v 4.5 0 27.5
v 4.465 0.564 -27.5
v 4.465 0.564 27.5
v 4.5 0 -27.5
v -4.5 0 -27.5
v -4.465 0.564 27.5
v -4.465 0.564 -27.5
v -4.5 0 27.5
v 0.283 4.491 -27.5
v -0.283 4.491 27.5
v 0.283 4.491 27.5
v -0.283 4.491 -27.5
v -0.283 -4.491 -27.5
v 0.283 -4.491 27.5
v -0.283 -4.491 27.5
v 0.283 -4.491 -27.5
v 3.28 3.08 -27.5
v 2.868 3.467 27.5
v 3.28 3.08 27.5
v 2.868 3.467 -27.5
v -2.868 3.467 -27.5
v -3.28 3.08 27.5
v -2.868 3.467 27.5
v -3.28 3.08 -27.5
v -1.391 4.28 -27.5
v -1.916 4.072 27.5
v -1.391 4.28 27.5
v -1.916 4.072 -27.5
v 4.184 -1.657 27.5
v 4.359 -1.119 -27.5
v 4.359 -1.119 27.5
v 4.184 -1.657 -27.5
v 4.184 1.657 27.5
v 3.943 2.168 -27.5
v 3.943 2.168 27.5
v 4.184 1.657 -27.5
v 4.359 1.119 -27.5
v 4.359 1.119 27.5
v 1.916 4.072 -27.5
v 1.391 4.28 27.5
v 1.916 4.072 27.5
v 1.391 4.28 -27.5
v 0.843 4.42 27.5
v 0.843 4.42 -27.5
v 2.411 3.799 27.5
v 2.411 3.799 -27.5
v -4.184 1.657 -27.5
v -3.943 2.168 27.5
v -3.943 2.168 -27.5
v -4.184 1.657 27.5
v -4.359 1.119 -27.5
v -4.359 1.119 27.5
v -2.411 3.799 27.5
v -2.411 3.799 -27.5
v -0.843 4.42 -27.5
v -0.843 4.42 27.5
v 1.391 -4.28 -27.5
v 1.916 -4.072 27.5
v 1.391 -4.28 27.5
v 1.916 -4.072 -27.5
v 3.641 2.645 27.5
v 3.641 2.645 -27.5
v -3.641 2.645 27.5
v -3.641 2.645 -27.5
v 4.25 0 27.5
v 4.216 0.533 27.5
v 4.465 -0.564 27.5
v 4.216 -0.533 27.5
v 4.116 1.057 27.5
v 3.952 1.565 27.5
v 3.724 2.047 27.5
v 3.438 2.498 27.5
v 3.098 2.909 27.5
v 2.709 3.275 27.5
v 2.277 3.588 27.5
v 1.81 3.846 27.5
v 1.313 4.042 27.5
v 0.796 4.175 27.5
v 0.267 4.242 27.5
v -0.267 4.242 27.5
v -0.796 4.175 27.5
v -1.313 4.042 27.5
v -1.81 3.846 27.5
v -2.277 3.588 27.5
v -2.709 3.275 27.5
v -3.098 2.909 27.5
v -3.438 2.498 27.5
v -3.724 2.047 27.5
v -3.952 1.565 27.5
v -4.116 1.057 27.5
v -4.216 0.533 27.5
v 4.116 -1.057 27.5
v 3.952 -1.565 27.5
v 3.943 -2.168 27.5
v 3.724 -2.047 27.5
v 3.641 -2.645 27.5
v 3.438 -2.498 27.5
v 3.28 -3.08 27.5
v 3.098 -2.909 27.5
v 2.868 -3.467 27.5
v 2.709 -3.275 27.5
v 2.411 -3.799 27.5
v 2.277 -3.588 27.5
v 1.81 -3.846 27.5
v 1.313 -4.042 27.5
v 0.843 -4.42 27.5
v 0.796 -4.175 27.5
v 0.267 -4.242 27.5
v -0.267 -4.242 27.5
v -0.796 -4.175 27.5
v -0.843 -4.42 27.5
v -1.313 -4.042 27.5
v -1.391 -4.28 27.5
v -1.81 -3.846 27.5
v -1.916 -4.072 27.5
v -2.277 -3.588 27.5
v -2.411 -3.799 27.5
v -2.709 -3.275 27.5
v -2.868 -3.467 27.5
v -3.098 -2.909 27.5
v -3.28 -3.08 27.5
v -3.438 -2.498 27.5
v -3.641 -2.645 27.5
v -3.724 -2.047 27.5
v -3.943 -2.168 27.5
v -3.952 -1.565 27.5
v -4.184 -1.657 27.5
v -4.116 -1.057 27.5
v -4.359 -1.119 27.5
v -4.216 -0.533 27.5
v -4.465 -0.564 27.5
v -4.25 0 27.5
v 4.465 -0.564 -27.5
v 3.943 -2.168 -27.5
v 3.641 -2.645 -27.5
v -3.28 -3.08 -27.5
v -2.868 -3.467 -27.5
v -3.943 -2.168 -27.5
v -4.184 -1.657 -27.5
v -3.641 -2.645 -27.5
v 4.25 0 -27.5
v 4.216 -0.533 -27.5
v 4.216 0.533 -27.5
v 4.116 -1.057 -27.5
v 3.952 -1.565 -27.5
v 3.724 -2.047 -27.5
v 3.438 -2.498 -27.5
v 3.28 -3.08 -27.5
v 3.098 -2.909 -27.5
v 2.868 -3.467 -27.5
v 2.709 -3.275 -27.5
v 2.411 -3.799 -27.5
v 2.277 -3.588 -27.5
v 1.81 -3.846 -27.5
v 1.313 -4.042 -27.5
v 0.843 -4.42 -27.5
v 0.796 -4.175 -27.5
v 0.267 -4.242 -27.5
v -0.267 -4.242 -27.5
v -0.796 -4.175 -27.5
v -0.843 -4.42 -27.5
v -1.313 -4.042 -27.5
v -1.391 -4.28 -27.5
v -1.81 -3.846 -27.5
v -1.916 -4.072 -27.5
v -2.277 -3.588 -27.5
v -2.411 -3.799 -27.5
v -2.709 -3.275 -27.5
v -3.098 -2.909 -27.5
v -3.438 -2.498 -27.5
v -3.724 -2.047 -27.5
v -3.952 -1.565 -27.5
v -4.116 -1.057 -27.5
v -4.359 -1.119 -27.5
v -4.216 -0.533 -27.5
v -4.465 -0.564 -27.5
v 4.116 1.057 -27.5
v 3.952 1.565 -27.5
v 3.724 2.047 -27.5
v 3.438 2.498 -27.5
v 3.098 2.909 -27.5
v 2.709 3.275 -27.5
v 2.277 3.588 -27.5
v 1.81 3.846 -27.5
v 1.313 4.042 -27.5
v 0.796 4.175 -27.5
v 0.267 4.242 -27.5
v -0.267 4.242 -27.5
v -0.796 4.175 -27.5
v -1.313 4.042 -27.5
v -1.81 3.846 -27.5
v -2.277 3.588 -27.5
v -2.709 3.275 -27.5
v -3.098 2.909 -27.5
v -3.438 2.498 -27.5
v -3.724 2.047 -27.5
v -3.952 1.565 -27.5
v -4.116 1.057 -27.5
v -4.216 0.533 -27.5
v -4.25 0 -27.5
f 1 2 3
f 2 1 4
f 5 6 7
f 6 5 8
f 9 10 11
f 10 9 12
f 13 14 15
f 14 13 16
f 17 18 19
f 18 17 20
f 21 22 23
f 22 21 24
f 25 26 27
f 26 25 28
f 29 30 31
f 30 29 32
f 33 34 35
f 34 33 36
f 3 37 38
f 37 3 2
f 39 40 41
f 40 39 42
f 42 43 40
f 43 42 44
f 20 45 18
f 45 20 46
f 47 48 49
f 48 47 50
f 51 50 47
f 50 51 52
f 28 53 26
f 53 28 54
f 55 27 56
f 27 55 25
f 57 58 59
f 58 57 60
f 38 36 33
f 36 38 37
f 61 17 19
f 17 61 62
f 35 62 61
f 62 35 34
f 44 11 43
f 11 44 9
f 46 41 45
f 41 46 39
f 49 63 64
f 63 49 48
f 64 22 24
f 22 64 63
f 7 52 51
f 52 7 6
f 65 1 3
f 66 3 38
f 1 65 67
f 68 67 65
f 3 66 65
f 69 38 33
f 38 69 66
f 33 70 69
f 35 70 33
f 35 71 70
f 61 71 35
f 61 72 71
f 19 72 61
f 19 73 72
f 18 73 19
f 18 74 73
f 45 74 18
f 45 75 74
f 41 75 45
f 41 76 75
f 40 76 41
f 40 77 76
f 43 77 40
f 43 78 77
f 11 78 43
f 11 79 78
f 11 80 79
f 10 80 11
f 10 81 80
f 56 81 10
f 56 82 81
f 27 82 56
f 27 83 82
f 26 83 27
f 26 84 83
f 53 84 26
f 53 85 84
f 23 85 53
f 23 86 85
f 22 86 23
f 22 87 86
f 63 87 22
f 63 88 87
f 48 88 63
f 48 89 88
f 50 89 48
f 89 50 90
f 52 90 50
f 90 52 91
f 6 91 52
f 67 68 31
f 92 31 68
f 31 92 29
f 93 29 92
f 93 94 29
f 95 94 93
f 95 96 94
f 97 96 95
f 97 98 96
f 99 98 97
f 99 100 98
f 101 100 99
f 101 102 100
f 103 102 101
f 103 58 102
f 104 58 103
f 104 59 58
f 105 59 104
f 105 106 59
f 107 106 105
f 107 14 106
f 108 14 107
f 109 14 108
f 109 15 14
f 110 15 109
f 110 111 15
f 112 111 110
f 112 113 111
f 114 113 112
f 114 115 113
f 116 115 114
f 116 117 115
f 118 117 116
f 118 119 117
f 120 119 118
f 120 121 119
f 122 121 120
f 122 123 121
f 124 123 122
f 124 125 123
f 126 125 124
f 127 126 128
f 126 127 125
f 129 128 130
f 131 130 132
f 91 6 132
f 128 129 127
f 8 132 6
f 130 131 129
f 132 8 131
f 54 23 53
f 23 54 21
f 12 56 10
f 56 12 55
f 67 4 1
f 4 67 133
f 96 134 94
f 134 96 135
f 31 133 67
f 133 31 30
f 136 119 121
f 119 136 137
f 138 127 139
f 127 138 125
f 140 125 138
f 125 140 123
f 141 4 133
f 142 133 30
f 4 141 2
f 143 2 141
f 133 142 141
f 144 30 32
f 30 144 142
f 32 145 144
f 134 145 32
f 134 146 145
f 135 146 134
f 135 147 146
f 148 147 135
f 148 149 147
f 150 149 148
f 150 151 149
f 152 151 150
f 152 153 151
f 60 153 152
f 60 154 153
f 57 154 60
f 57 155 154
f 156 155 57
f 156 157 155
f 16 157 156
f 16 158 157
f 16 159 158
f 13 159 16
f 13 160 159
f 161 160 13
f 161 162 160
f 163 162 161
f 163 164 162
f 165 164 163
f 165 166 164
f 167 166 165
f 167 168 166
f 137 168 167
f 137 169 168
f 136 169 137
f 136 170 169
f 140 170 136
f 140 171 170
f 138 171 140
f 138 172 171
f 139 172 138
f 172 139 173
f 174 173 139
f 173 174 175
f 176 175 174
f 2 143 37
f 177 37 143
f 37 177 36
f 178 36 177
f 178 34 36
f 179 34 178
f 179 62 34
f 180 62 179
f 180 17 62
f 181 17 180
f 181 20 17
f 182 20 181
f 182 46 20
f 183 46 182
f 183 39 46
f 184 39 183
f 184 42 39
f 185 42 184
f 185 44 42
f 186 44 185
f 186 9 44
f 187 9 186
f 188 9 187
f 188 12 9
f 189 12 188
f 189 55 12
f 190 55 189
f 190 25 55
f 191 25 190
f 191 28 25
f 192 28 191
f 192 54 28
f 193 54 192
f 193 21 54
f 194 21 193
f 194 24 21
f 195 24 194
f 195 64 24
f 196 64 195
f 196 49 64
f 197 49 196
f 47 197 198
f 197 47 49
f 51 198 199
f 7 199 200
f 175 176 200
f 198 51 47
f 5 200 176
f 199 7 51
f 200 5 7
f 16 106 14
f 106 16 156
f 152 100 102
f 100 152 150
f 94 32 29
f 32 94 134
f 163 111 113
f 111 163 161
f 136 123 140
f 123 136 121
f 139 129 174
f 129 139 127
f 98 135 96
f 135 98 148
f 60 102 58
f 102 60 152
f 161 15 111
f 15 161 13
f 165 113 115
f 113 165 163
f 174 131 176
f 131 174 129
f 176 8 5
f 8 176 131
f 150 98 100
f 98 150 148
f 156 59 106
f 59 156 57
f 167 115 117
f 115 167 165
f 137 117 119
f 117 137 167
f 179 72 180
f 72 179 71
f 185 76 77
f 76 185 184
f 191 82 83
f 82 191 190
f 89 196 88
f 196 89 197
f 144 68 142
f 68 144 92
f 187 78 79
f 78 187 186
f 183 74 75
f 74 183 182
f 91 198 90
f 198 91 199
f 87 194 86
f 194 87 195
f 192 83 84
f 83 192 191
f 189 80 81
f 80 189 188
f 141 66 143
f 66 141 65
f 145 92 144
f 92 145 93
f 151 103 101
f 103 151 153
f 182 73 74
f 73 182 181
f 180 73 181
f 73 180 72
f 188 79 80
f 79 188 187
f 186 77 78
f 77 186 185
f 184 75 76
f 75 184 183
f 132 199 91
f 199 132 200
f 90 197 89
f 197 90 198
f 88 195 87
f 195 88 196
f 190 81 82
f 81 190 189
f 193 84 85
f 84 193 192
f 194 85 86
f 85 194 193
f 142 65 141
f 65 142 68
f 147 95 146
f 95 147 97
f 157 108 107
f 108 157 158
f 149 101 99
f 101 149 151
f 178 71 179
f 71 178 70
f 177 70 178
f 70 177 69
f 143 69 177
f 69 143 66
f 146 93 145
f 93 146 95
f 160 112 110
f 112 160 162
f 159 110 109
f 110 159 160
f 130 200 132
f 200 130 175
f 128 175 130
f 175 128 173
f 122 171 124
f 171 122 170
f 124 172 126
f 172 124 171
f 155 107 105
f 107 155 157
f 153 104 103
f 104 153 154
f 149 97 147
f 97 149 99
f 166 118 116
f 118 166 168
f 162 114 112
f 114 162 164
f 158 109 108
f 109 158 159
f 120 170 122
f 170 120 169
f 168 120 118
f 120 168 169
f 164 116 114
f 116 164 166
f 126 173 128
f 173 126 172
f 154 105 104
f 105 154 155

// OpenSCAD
$fn = 50;


difference() {
	union() {
		translate(v = [0, 0, -27.5000000000]) {
			cylinder(h = 55, r = 4.5000000000);
		}
	}
	union() {
		translate(v = [0, 0, -100.0000000000]) {
			cylinder(h = 200, r = 4.2500000000);
		}
	}
}
